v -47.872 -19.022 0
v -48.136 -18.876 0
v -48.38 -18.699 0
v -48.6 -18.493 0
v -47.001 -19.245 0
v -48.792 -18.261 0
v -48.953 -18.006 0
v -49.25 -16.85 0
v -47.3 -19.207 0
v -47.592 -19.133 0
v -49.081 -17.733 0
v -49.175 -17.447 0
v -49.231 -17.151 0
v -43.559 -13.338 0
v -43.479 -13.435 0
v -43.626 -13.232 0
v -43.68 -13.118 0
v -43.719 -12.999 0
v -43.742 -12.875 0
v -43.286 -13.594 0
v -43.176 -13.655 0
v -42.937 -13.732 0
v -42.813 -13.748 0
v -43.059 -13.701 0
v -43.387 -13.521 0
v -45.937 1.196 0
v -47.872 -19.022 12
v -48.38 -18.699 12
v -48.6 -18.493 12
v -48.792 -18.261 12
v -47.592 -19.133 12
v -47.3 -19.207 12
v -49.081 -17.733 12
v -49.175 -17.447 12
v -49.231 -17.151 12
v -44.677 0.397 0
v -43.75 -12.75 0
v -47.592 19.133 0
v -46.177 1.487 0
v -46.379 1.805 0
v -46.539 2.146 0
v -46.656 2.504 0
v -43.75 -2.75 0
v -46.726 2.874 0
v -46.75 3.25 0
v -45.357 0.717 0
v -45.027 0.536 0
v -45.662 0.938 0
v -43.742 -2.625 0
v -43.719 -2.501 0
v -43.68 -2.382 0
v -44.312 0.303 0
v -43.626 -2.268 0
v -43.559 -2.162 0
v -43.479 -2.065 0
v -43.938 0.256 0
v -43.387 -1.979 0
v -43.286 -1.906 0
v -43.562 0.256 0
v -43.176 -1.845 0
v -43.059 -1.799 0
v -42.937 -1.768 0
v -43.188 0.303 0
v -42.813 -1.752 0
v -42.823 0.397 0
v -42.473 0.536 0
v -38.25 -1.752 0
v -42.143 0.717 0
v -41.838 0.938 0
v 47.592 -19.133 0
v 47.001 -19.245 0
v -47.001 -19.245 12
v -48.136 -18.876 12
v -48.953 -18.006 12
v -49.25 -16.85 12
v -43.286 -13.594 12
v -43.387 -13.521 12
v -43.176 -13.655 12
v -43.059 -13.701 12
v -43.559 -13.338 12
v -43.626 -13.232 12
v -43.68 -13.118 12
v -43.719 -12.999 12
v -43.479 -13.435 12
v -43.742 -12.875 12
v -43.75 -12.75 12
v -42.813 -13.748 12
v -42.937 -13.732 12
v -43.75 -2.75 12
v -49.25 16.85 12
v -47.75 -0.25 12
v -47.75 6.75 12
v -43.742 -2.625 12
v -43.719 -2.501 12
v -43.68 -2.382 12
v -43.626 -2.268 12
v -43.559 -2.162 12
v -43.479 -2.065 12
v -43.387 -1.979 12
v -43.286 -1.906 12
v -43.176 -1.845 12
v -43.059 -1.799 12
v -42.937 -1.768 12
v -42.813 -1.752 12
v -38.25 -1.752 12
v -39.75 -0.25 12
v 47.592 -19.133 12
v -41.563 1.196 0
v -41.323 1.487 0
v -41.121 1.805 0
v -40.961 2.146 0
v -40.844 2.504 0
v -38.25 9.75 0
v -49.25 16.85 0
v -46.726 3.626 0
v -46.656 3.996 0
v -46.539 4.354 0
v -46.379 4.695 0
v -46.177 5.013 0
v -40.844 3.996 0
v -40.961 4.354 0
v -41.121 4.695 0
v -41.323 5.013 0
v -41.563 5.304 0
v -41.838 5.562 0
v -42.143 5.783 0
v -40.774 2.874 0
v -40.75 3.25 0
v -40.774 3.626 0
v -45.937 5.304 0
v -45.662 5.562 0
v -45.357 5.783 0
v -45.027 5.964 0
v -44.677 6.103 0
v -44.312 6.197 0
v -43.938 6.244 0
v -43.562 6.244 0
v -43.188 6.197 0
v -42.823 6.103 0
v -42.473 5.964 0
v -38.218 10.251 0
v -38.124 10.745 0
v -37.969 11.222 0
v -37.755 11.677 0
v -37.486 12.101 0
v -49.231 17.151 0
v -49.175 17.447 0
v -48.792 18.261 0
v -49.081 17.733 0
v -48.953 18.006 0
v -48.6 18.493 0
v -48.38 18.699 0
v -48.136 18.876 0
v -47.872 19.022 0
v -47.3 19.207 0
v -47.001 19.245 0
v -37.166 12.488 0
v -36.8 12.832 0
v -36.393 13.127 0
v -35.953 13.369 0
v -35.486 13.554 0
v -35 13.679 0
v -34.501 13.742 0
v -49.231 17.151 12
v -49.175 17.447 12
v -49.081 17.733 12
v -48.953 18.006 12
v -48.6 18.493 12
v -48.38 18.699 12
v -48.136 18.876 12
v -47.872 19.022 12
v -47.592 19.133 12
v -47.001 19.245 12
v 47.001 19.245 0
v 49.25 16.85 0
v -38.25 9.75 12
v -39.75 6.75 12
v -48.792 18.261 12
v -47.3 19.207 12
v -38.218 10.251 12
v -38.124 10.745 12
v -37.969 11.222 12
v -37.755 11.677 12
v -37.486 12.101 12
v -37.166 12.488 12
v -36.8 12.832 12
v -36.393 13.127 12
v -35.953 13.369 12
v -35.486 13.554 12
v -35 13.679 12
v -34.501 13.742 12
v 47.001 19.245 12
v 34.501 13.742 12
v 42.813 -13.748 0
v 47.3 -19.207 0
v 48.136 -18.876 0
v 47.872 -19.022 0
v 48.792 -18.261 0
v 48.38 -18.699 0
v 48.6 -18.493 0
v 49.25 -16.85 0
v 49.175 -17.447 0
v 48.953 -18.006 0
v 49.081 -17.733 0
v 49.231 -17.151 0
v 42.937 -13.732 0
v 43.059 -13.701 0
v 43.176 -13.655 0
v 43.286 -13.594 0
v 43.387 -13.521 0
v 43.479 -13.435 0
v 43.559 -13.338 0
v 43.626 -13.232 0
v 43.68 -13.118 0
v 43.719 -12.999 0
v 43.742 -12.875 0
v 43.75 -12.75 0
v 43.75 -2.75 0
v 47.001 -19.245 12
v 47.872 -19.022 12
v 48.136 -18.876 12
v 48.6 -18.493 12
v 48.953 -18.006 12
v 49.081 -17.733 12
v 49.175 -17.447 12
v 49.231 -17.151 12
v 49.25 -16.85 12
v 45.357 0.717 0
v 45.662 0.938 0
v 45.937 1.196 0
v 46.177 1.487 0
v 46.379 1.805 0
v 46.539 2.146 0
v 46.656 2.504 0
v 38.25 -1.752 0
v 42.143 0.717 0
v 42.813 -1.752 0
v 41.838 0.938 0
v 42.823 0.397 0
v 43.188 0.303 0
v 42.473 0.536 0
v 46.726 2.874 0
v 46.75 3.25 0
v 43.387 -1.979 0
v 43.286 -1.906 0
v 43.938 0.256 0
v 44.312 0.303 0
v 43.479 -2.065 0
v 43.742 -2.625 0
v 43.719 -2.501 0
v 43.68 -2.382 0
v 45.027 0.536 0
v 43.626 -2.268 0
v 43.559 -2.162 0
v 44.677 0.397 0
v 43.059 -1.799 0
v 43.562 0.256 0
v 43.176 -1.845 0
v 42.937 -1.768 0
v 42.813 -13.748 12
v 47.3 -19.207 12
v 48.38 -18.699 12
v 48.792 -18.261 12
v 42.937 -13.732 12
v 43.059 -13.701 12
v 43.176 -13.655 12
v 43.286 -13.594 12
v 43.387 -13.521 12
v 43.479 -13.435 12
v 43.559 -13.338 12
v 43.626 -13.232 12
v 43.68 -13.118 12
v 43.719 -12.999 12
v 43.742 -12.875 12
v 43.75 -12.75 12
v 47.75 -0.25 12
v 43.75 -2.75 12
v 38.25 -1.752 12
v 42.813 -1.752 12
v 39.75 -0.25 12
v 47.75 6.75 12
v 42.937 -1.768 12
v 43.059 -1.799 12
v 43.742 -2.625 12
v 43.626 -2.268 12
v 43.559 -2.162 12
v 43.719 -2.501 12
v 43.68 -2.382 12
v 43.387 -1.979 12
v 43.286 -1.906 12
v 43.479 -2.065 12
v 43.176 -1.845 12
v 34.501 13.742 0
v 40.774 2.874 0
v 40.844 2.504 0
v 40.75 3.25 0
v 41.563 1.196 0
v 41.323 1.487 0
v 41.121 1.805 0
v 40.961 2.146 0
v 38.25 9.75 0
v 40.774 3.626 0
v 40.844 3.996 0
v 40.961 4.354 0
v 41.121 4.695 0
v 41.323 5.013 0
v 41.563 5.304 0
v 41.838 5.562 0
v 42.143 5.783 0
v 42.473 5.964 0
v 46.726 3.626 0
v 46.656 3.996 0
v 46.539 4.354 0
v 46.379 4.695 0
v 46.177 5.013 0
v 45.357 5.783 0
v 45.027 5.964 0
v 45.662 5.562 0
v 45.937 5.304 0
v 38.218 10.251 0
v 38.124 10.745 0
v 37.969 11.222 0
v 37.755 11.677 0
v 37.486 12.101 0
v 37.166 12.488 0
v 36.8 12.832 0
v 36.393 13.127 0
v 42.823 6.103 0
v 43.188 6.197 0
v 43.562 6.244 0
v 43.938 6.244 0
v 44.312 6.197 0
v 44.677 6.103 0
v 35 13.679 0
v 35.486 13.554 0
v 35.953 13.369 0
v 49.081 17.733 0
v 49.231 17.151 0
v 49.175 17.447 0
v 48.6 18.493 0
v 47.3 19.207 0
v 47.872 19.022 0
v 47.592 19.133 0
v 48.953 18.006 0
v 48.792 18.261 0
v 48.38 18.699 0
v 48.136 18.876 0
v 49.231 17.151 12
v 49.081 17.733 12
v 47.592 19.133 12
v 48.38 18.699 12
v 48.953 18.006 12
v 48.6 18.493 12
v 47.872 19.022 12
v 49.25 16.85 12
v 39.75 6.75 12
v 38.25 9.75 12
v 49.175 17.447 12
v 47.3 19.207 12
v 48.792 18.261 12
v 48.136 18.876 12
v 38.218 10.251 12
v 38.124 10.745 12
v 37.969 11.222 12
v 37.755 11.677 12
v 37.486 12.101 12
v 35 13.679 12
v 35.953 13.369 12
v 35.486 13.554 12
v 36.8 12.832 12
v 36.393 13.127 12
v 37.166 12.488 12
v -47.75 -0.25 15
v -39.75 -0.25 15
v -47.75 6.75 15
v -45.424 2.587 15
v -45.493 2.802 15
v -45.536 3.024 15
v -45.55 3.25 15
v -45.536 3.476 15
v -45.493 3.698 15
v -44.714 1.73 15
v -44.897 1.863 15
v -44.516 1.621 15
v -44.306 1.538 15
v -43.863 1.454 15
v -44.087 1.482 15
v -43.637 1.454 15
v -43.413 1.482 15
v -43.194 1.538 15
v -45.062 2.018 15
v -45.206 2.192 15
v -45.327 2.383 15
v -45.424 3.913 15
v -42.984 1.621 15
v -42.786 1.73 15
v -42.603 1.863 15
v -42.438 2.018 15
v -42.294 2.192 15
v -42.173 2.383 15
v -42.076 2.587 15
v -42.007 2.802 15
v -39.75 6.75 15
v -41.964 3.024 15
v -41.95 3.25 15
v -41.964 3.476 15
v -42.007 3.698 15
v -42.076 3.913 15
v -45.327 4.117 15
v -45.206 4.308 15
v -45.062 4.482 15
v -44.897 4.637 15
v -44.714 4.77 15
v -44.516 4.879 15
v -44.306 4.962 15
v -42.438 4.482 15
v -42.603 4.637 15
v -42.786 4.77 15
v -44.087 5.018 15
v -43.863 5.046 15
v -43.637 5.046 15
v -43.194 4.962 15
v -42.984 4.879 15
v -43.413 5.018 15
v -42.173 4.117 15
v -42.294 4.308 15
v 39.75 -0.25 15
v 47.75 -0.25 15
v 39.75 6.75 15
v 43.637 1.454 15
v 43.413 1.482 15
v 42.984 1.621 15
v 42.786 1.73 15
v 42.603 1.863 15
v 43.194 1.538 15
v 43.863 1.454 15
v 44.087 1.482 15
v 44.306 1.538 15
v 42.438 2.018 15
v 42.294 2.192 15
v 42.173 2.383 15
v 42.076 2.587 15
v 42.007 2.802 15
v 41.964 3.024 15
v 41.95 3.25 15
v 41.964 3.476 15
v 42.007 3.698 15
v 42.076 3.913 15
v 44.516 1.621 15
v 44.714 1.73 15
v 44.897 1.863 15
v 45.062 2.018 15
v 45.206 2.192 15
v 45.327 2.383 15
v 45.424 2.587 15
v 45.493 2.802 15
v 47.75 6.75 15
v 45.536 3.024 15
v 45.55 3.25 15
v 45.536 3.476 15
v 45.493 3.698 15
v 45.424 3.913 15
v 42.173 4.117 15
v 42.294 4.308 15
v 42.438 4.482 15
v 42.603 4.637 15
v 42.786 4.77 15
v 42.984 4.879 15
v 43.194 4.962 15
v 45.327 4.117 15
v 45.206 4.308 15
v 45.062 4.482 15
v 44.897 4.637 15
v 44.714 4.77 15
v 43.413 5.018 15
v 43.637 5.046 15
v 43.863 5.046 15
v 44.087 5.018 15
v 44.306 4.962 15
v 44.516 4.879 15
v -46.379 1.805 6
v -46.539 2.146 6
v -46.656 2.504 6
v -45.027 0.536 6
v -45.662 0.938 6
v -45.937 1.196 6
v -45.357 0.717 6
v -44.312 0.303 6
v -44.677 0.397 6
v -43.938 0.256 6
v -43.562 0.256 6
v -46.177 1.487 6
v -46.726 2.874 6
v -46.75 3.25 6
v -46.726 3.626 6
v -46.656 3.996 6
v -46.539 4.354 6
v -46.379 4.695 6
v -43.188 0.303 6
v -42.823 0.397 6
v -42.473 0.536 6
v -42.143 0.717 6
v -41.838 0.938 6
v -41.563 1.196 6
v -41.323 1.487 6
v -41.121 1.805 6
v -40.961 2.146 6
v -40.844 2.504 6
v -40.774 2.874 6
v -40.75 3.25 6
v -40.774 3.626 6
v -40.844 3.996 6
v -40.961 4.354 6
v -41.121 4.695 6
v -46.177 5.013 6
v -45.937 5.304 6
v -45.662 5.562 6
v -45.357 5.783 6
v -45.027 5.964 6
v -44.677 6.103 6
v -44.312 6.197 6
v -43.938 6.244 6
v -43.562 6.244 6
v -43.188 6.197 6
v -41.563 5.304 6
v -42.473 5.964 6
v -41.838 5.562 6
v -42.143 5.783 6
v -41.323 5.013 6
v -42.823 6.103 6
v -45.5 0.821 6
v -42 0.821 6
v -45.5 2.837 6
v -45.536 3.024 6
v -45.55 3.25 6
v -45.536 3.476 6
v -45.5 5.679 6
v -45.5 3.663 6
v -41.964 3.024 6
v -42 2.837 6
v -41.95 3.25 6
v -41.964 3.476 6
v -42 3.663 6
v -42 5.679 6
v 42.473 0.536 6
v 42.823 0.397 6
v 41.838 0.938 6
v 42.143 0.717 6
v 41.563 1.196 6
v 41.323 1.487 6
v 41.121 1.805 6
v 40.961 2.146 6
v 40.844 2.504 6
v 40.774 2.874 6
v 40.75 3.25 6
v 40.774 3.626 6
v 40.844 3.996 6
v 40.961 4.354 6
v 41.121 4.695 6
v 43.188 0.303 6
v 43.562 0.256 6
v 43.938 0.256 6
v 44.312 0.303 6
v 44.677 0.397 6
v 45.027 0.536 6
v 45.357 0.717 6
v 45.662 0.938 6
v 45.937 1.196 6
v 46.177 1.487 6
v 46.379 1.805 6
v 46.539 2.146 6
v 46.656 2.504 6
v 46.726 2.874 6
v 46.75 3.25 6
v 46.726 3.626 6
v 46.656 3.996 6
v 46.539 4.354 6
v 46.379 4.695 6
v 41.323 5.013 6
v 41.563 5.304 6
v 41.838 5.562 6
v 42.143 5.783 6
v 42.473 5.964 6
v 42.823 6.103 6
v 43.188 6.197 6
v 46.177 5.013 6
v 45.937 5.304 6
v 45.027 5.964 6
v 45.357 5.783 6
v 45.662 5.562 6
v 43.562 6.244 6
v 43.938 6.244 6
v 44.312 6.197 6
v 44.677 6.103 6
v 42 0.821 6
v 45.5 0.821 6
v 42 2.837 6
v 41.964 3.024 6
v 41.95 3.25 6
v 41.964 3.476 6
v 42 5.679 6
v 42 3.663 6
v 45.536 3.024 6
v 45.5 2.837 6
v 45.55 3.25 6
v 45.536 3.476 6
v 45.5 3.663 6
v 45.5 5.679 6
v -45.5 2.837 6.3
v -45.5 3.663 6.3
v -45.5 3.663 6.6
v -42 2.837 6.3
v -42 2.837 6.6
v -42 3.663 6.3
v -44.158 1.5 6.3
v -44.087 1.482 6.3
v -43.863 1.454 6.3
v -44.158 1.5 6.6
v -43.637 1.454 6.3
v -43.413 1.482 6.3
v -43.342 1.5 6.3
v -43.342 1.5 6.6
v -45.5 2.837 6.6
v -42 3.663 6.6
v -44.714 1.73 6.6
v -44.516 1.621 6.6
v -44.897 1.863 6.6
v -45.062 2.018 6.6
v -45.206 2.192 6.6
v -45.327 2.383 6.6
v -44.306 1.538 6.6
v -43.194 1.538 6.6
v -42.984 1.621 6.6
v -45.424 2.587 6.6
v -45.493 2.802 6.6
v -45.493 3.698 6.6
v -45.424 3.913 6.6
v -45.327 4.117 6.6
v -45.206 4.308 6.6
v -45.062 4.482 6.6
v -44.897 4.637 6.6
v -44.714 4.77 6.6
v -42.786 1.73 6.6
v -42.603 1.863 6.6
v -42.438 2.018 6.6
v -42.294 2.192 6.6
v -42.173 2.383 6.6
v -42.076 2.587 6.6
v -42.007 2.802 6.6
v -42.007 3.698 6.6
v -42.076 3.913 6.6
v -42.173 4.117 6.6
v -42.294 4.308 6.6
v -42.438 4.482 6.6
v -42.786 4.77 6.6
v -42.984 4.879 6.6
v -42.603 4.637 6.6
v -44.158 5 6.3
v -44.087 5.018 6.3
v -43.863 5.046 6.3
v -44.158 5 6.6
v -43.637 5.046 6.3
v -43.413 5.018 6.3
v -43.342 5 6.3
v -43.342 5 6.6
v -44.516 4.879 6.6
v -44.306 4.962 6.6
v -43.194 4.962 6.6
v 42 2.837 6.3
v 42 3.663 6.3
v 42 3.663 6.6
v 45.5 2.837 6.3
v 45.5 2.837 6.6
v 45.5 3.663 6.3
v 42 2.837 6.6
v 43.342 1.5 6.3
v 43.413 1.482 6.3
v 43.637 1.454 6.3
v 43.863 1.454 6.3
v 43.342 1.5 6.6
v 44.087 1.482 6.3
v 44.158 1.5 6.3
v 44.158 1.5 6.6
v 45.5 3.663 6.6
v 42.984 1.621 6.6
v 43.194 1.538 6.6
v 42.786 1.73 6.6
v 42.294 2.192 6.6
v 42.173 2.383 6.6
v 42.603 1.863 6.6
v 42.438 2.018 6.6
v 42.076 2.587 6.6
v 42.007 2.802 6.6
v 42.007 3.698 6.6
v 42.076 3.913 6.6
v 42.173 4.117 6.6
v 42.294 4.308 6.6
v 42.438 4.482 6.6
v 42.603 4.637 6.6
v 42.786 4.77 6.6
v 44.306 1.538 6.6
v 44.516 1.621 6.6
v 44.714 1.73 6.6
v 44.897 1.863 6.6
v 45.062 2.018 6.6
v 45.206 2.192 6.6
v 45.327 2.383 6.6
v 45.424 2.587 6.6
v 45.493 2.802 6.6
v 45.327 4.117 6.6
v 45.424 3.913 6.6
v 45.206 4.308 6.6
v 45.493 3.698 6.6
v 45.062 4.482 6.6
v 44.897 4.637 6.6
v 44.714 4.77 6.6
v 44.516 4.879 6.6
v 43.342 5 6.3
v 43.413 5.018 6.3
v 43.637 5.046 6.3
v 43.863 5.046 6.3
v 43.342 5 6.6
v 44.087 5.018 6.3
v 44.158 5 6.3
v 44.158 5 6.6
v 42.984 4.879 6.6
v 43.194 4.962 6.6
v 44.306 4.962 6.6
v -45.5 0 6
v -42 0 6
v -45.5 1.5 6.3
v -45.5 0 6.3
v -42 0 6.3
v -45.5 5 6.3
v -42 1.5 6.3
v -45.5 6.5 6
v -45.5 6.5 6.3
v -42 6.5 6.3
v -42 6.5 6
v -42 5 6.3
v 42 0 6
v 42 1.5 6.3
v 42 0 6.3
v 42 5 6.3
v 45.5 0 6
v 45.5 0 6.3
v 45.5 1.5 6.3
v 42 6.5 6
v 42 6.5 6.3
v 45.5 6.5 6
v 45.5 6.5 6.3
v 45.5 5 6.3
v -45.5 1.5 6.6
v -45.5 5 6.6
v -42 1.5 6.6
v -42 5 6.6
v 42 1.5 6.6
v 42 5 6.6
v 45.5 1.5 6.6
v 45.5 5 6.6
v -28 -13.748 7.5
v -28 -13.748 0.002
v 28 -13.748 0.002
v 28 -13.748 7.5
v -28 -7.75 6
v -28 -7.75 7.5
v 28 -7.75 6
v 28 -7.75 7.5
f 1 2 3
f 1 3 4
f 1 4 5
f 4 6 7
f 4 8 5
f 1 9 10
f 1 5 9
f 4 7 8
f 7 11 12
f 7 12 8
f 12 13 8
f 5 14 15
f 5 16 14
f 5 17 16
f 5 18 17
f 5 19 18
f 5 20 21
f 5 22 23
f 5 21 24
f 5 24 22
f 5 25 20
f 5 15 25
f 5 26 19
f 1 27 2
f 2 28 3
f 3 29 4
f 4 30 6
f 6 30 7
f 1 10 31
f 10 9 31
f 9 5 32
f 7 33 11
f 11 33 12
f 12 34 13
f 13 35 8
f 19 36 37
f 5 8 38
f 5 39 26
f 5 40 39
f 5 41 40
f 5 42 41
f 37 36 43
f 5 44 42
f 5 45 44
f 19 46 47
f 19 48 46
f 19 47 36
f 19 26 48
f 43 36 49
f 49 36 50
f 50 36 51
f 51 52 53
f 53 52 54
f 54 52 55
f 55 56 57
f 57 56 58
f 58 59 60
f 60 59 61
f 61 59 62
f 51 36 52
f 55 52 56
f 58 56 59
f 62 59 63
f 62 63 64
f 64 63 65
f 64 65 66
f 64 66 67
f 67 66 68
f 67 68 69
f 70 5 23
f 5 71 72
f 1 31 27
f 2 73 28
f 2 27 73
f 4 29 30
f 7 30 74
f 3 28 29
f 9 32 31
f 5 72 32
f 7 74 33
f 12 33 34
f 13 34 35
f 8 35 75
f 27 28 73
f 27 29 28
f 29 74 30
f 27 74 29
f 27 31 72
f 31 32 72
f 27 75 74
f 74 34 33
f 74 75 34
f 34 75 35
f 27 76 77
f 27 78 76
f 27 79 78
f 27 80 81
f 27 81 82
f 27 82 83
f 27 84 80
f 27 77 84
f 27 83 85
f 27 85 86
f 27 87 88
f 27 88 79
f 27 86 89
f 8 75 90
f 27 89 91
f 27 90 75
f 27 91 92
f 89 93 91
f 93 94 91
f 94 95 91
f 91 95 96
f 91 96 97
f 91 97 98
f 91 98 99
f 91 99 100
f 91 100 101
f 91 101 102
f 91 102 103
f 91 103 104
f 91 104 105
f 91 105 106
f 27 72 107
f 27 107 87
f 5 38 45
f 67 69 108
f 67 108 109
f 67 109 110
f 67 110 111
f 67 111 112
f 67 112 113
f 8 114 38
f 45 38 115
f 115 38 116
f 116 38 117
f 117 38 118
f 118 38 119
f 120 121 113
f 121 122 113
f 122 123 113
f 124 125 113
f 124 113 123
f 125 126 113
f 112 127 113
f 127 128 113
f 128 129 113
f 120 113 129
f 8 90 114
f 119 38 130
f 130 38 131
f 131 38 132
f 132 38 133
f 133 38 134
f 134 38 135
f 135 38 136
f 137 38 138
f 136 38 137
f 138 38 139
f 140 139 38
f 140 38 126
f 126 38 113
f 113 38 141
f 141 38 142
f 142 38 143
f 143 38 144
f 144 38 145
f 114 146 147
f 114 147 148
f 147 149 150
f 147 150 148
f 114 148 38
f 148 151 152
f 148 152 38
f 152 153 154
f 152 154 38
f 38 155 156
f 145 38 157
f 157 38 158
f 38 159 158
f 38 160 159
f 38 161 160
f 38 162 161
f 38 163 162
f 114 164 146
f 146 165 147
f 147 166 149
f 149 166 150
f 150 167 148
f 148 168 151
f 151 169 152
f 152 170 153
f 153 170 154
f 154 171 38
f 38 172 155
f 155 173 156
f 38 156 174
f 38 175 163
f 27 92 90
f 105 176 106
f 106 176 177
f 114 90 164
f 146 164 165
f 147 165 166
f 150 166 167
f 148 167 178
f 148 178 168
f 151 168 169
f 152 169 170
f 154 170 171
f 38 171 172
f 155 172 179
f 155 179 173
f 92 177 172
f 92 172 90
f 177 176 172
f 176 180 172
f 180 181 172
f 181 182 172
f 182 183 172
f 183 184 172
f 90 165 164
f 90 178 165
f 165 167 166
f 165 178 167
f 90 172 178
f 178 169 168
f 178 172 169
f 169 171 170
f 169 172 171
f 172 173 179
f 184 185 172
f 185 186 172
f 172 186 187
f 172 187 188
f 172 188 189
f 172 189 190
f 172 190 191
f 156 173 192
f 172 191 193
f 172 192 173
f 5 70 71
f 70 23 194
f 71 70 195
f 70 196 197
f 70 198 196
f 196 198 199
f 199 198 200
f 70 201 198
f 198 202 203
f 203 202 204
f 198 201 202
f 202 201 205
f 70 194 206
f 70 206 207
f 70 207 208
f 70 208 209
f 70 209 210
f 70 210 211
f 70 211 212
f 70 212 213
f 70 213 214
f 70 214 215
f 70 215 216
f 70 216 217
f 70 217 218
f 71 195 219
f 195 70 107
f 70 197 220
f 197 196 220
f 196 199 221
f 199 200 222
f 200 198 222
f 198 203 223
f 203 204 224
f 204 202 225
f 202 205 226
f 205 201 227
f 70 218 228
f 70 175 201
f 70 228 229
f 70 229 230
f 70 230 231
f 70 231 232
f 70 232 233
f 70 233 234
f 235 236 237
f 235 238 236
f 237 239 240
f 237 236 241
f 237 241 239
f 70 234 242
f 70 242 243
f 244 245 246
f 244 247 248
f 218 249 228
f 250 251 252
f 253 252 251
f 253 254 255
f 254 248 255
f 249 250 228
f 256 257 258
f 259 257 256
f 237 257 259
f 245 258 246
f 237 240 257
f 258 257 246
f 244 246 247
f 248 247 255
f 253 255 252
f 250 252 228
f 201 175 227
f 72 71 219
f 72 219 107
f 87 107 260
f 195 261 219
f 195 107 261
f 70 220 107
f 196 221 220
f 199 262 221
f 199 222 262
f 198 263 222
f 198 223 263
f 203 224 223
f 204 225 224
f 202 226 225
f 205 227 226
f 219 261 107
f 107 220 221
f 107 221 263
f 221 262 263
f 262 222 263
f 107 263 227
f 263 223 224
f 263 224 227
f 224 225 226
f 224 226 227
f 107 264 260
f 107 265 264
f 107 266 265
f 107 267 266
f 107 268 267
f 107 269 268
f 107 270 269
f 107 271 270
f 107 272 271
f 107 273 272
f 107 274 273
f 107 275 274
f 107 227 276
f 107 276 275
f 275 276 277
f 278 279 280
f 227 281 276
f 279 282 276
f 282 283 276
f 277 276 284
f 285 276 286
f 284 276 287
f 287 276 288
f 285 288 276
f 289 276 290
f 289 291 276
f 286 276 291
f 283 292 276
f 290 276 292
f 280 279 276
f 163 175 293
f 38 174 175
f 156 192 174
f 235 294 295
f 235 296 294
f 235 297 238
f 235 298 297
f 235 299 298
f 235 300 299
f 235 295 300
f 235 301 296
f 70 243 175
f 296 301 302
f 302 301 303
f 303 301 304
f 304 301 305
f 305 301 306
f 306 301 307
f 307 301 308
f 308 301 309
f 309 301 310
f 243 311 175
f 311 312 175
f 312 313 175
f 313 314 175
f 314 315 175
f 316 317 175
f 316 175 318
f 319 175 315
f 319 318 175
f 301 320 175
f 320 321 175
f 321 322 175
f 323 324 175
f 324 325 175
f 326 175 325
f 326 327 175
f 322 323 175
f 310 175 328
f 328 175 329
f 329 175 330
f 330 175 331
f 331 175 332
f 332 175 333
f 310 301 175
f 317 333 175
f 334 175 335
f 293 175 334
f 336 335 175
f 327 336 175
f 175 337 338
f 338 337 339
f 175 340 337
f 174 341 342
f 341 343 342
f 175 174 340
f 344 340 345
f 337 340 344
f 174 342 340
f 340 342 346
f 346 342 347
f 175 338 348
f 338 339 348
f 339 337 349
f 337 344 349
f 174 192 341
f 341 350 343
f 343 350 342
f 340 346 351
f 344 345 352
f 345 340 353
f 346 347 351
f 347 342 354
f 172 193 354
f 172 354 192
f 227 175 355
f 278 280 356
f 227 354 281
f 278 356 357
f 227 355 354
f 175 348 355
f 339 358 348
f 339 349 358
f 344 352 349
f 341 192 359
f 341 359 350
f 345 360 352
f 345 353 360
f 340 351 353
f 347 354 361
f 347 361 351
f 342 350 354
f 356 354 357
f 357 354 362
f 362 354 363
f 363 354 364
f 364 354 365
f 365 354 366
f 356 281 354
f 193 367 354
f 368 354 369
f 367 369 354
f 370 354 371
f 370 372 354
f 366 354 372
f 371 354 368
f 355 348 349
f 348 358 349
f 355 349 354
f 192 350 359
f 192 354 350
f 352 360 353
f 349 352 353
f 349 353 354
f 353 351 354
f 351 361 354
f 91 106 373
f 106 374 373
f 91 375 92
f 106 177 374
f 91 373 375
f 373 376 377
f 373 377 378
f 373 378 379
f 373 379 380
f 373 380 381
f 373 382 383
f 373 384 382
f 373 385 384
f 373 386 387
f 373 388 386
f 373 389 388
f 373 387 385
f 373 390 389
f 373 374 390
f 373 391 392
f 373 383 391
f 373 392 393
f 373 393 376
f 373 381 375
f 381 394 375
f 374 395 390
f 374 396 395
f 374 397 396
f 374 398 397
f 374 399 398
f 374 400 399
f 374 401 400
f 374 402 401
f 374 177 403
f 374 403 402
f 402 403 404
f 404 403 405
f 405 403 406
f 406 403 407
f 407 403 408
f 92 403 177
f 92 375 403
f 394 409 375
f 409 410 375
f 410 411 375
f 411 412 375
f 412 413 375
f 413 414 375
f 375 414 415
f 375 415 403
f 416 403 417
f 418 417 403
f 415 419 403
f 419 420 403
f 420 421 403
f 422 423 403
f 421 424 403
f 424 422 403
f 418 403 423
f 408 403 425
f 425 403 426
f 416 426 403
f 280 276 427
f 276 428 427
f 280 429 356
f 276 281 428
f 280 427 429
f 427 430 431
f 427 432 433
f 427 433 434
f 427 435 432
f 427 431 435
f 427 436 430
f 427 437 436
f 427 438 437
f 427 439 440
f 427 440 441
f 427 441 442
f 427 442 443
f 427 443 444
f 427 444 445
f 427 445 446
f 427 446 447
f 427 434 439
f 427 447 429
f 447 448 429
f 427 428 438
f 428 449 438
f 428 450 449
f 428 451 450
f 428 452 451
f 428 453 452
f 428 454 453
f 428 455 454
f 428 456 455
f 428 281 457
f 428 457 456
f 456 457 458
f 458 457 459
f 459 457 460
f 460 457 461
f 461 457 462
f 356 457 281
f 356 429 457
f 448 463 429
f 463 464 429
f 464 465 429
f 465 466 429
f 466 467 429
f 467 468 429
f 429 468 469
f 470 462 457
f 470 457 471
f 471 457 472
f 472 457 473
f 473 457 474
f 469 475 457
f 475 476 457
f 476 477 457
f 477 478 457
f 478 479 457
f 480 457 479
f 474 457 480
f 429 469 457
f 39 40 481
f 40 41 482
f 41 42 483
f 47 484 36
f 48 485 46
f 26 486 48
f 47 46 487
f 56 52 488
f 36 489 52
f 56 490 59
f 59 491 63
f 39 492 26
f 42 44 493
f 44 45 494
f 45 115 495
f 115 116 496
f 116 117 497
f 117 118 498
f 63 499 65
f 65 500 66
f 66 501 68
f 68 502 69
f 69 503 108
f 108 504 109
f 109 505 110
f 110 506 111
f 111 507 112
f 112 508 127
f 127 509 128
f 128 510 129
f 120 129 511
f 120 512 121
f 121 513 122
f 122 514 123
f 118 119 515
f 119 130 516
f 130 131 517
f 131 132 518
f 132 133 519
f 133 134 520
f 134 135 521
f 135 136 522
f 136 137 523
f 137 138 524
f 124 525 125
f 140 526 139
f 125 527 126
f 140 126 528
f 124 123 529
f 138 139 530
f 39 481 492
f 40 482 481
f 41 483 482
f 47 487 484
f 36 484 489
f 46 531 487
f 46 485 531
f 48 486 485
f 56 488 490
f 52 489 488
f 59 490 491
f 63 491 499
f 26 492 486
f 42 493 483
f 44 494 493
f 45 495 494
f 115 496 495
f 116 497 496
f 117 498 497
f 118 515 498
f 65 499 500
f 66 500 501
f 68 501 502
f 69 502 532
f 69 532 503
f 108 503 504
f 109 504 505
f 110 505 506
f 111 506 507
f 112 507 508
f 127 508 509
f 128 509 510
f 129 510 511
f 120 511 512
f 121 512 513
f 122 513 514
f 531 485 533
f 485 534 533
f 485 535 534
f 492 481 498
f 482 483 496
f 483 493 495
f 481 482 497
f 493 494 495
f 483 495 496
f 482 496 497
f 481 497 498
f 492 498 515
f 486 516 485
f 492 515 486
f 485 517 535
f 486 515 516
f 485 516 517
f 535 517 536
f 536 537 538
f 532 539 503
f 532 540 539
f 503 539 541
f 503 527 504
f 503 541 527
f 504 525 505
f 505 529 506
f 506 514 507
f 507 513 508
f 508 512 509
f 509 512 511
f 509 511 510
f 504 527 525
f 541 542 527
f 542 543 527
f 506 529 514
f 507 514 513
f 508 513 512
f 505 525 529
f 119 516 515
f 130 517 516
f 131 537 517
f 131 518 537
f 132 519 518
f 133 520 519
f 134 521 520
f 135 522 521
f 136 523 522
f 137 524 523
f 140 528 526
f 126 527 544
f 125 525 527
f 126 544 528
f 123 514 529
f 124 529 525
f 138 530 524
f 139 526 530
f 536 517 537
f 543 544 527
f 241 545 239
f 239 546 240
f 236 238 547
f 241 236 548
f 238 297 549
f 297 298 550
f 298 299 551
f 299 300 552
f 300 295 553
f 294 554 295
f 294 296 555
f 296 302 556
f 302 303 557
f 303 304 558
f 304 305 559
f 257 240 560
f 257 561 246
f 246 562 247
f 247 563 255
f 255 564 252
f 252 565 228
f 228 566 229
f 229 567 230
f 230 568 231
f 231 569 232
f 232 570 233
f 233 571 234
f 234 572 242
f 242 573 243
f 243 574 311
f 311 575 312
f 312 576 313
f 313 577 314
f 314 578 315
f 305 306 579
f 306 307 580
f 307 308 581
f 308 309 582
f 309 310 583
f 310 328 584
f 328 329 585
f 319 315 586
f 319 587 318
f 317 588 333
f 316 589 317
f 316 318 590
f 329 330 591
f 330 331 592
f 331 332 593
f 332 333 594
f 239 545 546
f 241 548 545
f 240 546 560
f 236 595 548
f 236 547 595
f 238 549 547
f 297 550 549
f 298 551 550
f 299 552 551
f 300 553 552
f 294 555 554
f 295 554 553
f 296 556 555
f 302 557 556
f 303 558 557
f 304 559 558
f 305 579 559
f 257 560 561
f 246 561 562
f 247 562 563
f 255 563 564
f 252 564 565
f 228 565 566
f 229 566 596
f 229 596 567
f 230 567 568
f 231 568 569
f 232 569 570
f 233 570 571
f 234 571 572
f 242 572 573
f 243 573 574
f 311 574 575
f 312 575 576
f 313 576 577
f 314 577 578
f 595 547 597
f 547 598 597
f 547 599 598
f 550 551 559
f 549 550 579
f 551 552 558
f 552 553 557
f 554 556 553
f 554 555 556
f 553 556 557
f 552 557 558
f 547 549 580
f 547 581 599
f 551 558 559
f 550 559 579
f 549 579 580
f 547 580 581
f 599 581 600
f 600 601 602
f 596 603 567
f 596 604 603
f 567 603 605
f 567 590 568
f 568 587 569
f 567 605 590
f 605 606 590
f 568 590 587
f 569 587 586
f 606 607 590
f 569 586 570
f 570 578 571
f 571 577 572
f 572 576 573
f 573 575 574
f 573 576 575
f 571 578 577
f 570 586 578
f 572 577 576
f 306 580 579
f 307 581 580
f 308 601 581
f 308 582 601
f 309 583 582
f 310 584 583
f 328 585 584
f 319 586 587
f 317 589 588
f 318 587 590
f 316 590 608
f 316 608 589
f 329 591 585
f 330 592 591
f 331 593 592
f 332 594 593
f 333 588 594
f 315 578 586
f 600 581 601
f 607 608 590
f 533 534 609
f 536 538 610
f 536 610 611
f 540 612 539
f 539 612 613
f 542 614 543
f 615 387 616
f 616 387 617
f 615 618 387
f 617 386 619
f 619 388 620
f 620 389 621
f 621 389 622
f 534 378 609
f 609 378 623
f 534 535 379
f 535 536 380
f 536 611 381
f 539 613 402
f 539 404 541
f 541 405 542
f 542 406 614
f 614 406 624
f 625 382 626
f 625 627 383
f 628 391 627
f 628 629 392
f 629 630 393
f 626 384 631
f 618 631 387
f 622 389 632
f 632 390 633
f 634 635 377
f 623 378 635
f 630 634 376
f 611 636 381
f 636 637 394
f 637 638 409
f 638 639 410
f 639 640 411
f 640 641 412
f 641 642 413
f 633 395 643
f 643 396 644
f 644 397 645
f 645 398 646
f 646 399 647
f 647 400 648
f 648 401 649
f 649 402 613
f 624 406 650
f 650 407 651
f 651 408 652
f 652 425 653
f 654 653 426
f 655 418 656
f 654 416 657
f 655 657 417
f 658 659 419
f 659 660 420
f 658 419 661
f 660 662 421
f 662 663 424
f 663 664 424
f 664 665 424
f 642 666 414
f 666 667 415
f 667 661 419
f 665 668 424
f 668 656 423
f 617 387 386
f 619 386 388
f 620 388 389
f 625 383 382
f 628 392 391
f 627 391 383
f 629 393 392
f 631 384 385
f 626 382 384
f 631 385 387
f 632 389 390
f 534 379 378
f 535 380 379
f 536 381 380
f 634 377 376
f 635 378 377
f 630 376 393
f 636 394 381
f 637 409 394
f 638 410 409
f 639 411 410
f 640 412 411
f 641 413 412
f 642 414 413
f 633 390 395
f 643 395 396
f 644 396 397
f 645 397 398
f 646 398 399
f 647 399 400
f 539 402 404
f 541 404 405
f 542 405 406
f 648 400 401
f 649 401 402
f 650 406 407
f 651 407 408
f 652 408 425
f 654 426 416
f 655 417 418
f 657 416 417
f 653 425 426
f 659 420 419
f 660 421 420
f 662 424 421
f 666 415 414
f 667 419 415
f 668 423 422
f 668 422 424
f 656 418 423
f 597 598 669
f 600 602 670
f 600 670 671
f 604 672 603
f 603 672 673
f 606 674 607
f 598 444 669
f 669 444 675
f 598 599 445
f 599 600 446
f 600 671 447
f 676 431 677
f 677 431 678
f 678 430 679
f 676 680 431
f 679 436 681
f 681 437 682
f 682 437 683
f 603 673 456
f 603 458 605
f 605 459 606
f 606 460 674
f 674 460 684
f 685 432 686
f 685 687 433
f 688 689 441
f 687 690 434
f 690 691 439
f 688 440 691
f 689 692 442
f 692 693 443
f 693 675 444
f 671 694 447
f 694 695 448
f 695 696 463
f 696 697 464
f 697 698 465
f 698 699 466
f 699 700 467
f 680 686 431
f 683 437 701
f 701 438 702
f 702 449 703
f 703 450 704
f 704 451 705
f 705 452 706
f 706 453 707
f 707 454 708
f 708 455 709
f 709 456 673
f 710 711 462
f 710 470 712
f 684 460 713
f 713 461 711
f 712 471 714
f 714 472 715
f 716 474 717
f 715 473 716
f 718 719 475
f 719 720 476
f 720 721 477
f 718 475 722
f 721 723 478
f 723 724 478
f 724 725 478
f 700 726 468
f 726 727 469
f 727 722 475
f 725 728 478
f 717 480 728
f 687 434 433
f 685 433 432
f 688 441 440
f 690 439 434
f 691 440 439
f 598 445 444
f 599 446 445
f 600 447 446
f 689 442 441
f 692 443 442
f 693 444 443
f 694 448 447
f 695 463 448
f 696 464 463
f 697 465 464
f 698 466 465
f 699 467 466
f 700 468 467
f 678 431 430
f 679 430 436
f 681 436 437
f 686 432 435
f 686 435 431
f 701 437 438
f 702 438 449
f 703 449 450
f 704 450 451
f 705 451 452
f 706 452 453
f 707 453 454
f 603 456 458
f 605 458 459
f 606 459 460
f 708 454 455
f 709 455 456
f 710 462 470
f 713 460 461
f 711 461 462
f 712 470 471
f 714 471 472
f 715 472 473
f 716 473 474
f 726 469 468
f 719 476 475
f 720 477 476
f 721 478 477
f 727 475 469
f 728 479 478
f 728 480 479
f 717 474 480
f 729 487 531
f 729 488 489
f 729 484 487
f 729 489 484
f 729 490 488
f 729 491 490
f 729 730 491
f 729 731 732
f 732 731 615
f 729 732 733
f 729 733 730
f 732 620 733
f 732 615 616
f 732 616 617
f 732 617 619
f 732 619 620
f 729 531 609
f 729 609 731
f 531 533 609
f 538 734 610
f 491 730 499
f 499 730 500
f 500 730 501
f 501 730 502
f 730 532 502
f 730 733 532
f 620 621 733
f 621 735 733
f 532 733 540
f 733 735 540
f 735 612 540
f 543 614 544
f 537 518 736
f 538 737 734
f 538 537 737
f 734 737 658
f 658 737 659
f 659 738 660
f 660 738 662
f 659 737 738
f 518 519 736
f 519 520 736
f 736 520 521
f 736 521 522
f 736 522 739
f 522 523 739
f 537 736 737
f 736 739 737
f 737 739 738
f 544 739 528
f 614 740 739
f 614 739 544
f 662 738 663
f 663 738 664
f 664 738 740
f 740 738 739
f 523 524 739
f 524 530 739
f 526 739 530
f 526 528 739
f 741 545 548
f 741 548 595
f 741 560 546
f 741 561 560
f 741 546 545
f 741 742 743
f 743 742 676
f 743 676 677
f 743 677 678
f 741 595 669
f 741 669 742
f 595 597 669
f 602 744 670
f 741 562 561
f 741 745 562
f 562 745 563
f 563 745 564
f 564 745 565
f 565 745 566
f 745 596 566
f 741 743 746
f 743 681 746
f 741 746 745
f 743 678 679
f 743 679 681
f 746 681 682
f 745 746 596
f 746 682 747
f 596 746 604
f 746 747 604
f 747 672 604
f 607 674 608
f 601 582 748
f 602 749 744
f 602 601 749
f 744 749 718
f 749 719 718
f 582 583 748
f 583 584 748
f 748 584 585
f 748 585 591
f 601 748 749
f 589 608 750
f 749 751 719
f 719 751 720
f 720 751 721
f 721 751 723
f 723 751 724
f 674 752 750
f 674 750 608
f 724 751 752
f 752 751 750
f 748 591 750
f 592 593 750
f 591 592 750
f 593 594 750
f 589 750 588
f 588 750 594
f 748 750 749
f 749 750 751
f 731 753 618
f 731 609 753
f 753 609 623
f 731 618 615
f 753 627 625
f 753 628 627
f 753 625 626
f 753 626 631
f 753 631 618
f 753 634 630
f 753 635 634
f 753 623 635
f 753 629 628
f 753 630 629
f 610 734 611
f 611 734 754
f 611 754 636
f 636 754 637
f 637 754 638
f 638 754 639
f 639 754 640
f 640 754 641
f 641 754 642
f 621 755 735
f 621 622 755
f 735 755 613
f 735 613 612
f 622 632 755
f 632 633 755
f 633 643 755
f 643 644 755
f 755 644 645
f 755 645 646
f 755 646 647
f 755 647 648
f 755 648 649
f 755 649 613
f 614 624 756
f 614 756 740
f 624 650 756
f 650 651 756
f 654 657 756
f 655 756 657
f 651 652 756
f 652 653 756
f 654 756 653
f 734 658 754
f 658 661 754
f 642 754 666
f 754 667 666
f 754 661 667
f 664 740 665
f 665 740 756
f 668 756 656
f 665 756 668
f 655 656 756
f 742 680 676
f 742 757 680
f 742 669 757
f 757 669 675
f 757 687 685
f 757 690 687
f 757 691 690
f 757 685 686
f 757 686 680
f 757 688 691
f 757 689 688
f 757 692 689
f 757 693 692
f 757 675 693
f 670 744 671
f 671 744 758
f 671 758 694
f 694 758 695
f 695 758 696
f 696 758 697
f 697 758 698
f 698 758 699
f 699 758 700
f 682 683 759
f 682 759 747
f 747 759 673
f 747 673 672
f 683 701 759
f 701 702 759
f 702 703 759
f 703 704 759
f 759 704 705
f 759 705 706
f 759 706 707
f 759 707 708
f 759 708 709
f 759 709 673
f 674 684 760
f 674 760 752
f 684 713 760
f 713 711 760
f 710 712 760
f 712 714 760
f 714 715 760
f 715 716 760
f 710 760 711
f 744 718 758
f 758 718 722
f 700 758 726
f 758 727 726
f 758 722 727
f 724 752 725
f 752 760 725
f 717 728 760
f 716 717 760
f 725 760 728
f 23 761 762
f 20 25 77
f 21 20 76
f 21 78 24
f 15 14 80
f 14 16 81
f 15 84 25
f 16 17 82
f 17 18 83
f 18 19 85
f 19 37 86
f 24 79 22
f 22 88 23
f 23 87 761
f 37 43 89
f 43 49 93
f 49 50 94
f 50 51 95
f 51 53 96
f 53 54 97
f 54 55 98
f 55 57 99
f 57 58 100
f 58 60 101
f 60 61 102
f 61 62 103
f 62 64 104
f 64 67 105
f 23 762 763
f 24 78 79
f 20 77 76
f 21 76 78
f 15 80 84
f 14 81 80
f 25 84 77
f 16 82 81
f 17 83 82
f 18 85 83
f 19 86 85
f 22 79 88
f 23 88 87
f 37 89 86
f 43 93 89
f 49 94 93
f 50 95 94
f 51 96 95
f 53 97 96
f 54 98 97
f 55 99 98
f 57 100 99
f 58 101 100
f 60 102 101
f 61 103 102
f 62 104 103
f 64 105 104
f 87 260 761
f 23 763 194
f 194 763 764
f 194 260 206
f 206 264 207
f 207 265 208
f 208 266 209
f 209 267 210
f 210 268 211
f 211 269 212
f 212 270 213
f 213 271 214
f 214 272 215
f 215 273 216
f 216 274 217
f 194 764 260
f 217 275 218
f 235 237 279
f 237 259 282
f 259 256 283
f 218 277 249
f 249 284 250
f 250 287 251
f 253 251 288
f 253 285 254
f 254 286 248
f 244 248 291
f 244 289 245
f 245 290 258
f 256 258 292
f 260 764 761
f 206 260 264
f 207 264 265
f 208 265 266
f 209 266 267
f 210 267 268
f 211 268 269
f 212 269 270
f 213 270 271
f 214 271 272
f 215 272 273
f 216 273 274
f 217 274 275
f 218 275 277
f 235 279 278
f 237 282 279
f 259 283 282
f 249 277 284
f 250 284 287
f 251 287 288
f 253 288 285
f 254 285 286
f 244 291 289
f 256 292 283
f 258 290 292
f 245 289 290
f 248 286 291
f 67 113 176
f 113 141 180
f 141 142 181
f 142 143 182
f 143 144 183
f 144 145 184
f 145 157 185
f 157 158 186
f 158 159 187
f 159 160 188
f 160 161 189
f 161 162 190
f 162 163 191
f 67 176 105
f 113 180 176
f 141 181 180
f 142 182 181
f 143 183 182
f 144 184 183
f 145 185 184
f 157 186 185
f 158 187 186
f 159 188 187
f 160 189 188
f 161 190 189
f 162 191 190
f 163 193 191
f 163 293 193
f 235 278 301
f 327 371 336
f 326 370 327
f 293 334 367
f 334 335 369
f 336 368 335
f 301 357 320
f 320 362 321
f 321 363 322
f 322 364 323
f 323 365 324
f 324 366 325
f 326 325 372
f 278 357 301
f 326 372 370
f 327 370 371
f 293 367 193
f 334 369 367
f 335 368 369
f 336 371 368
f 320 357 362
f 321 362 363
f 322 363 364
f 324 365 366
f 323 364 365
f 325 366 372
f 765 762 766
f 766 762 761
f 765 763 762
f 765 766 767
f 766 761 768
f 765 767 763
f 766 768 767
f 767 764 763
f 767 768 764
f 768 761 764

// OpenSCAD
$fn = 50;

union() {
	difference() {
		union() {
			hull() {
				translate(v = [-46.85, 16.85, 0]) {
					cylinder(h = 12.0, r = 2.4);
				}
				translate(v = [46.85, 16.85, 0]) {
					cylinder(h = 12.0, r = 2.4);
				}
				translate(v = [-46.85, -16.85, 0]) {
					cylinder(h = 12.0, r = 2.4);
				}
				translate(v = [46.85, -16.85, 0]) {
					cylinder(h = 12.0, r = 2.4);
				}
			}
			translate(v = [-47.75, -0.25, 11.9]) {
				cube(size = [8.0, 7.0, 3.1]);
			}
			translate(v = [39.75, -0.25, 11.9]) {
				cube(size = [8.0, 7.0, 3.1]);
			}
		}
		union() {
			translate(v = [-43.75, 3.25, 6.0]) {
				rotate(a = [0, 180, 0]) {
					difference() {
						union() {
							translate(v = [0, 0, -13.5]) {
								rotate(a = [0, 0, 0]) {
									difference() {
										union() {
											translate(v = [-1.75, -3.25, -250.3]) {
												cube(size = [3.5, 6.5, 0.3]);
											}
											translate(v = [-1.75, -1.75, -250.60000000000002]) {
												cube(size = [3.5, 3.5, 0.3]);
											}
											translate(v = [-1.75, -3.25, 0]) {
												cube(size = [3.5, 6.5, 0.3]);
											}
											translate(v = [-1.75, -1.75, 0.3]) {
												cube(size = [3.5, 3.5, 0.3]);
											}
											translate(v = [0, 0, -250]) {
												linear_extrude(height = 250) {
													polygon(points = [[3.4619999999999997, 0.0], [1.7310000000000003, 2.9981799479017264], [-1.7309999999999992, 2.9981799479017264], [-3.4619999999999997, 4.2397272186481365e-16], [-1.7310000000000014, -2.998179947901726], [1.7309999999999977, -2.9981799479017277]]);
												}
											}
											translate(v = [-1.75, -3.25, -250.3]) {
												cube(size = [3.5, 6.5, 0.3]);
											}
											translate(v = [-1.75, -1.75, -250.60000000000002]) {
												cube(size = [3.5, 3.5, 0.3]);
											}
											translate(v = [-1.75, -3.25, 0]) {
												cube(size = [3.5, 6.5, 0.3]);
											}
											translate(v = [-1.75, -1.75, 0.3]) {
												cube(size = [3.5, 3.5, 0.3]);
											}
											translate(v = [-1.75, -3.25, -250.3]) {
												cube(size = [3.5, 6.5, 0.3]);
											}
											translate(v = [-1.75, -1.75, -250.60000000000002]) {
												cube(size = [3.5, 3.5, 0.3]);
											}
											translate(v = [-1.75, -3.25, 0]) {
												cube(size = [3.5, 6.5, 0.3]);
											}
											translate(v = [-1.75, -1.75, 0.3]) {
												cube(size = [3.5, 3.5, 0.3]);
											}
										}
										union();
									}
								}
							}
							translate(v = [0, 0, -13.0]) {
								rotate(a = [0, 0, 0]) {
									difference() {
										union() {
											translate(v = [-1.75, -3.25, -250.3]) {
												cube(size = [3.5, 6.5, 0.3]);
											}
											translate(v = [-1.75, -1.75, -250.60000000000002]) {
												cube(size = [3.5, 3.5, 0.3]);
											}
											translate(v = [-1.75, -3.25, 0]) {
												cube(size = [3.5, 6.5, 0.3]);
											}
											translate(v = [-1.75, -1.75, 0.3]) {
												cube(size = [3.5, 3.5, 0.3]);
											}
											translate(v = [0, 0, -250]) {
												linear_extrude(height = 250) {
													polygon(points = [[3.4619999999999997, 0.0], [1.7310000000000003, 2.9981799479017264], [-1.7309999999999992, 2.9981799479017264], [-3.4619999999999997, 4.2397272186481365e-16], [-1.7310000000000014, -2.998179947901726], [1.7309999999999977, -2.9981799479017277]]);
												}
											}
											translate(v = [-1.75, -3.25, -250.3]) {
												cube(size = [3.5, 6.5, 0.3]);
											}
											translate(v = [-1.75, -1.75, -250.60000000000002]) {
												cube(size = [3.5, 3.5, 0.3]);
											}
											translate(v = [-1.75, -3.25, 0]) {
												cube(size = [3.5, 6.5, 0.3]);
											}
											translate(v = [-1.75, -1.75, 0.3]) {
												cube(size = [3.5, 3.5, 0.3]);
											}
											translate(v = [-1.75, -3.25, -250.3]) {
												cube(size = [3.5, 6.5, 0.3]);
											}
											translate(v = [-1.75, -1.75, -250.60000000000002]) {
												cube(size = [3.5, 3.5, 0.3]);
											}
											translate(v = [-1.75, -3.25, 0]) {
												cube(size = [3.5, 6.5, 0.3]);
											}
											translate(v = [-1.75, -1.75, 0.3]) {
												cube(size = [3.5, 3.5, 0.3]);
											}
										}
										union();
									}
								}
							}
							translate(v = [0, 0, -13.5]) {
								rotate(a = [0, 0, 0]) {
									difference() {
										union() {
											translate(v = [-1.75, -3.25, -250.3]) {
												cube(size = [3.5, 6.5, 0.3]);
											}
											translate(v = [-1.75, -1.75, -250.60000000000002]) {
												cube(size = [3.5, 3.5, 0.3]);
											}
											translate(v = [-1.75, -3.25, 0]) {
												cube(size = [3.5, 6.5, 0.3]);
											}
											translate(v = [-1.75, -1.75, 0.3]) {
												cube(size = [3.5, 3.5, 0.3]);
											}
											translate(v = [0, 0, -250]) {
												linear_extrude(height = 250) {
													polygon(points = [[3.4619999999999997, 0.0], [1.7310000000000003, 2.9981799479017264], [-1.7309999999999992, 2.9981799479017264], [-3.4619999999999997, 4.2397272186481365e-16], [-1.7310000000000014, -2.998179947901726], [1.7309999999999977, -2.9981799479017277]]);
												}
											}
											translate(v = [-1.75, -3.25, -250.3]) {
												cube(size = [3.5, 6.5, 0.3]);
											}
											translate(v = [-1.75, -1.75, -250.60000000000002]) {
												cube(size = [3.5, 3.5, 0.3]);
											}
											translate(v = [-1.75, -3.25, 0]) {
												cube(size = [3.5, 6.5, 0.3]);
											}
											translate(v = [-1.75, -1.75, 0.3]) {
												cube(size = [3.5, 3.5, 0.3]);
											}
											translate(v = [-1.75, -3.25, -250.3]) {
												cube(size = [3.5, 6.5, 0.3]);
											}
											translate(v = [-1.75, -1.75, -250.60000000000002]) {
												cube(size = [3.5, 3.5, 0.3]);
											}
											translate(v = [-1.75, -3.25, 0]) {
												cube(size = [3.5, 6.5, 0.3]);
											}
											translate(v = [-1.75, -1.75, 0.3]) {
												cube(size = [3.5, 3.5, 0.3]);
											}
										}
										union();
									}
								}
							}
							translate(v = [0, 0, -16.0]) {
								cylinder(h = 16.0, r = 1.5);
							}
							cylinder(h = 253.2, r = 3.0);
							translate(v = [0, 0, -16.0]) {
								cylinder(h = 16.0, r = 1.8);
							}
							translate(v = [-1.75, -3.25, -0.3]) {
								cube(size = [3.5, 6.5, 0.3]);
							}
							translate(v = [-1.75, -1.75, -0.6]) {
								cube(size = [3.5, 3.5, 0.3]);
							}
							translate(v = [0, 0, -16.0]) {
								cylinder(h = 16.0, r = 1.5);
							}
						}
						union();
					}
				}
			}
			translate(v = [43.75, 3.25, 6.0]) {
				rotate(a = [0, 180, 0]) {
					difference() {
						union() {
							translate(v = [0, 0, -13.5]) {
								rotate(a = [0, 0, 0]) {
									difference() {
										union() {
											translate(v = [-1.75, -3.25, -250.3]) {
												cube(size = [3.5, 6.5, 0.3]);
											}
											translate(v = [-1.75, -1.75, -250.60000000000002]) {
												cube(size = [3.5, 3.5, 0.3]);
											}
											translate(v = [-1.75, -3.25, 0]) {
												cube(size = [3.5, 6.5, 0.3]);
											}
											translate(v = [-1.75, -1.75, 0.3]) {
												cube(size = [3.5, 3.5, 0.3]);
											}
											translate(v = [0, 0, -250]) {
												linear_extrude(height = 250) {
													polygon(points = [[3.4619999999999997, 0.0], [1.7310000000000003, 2.9981799479017264], [-1.7309999999999992, 2.9981799479017264], [-3.4619999999999997, 4.2397272186481365e-16], [-1.7310000000000014, -2.998179947901726], [1.7309999999999977, -2.9981799479017277]]);
												}
											}
											translate(v = [-1.75, -3.25, -250.3]) {
												cube(size = [3.5, 6.5, 0.3]);
											}
											translate(v = [-1.75, -1.75, -250.60000000000002]) {
												cube(size = [3.5, 3.5, 0.3]);
											}
											translate(v = [-1.75, -3.25, 0]) {
												cube(size = [3.5, 6.5, 0.3]);
											}
											translate(v = [-1.75, -1.75, 0.3]) {
												cube(size = [3.5, 3.5, 0.3]);
											}
											translate(v = [-1.75, -3.25, -250.3]) {
												cube(size = [3.5, 6.5, 0.3]);
											}
											translate(v = [-1.75, -1.75, -250.60000000000002]) {
												cube(size = [3.5, 3.5, 0.3]);
											}
											translate(v = [-1.75, -3.25, 0]) {
												cube(size = [3.5, 6.5, 0.3]);
											}
											translate(v = [-1.75, -1.75, 0.3]) {
												cube(size = [3.5, 3.5, 0.3]);
											}
										}
										union();
									}
								}
							}
							translate(v = [0, 0, -13.0]) {
								rotate(a = [0, 0, 0]) {
									difference() {
										union() {
											translate(v = [-1.75, -3.25, -250.3]) {
												cube(size = [3.5, 6.5, 0.3]);
											}
											translate(v = [-1.75, -1.75, -250.60000000000002]) {
												cube(size = [3.5, 3.5, 0.3]);
											}
											translate(v = [-1.75, -3.25, 0]) {
												cube(size = [3.5, 6.5, 0.3]);
											}
											translate(v = [-1.75, -1.75, 0.3]) {
												cube(size = [3.5, 3.5, 0.3]);
											}
											translate(v = [0, 0, -250]) {
												linear_extrude(height = 250) {
													polygon(points = [[3.4619999999999997, 0.0], [1.7310000000000003, 2.9981799479017264], [-1.7309999999999992, 2.9981799479017264], [-3.4619999999999997, 4.2397272186481365e-16], [-1.7310000000000014, -2.998179947901726], [1.7309999999999977, -2.9981799479017277]]);
												}
											}
											translate(v = [-1.75, -3.25, -250.3]) {
												cube(size = [3.5, 6.5, 0.3]);
											}
											translate(v = [-1.75, -1.75, -250.60000000000002]) {
												cube(size = [3.5, 3.5, 0.3]);
											}
											translate(v = [-1.75, -3.25, 0]) {
												cube(size = [3.5, 6.5, 0.3]);
											}
											translate(v = [-1.75, -1.75, 0.3]) {
												cube(size = [3.5, 3.5, 0.3]);
											}
											translate(v = [-1.75, -3.25, -250.3]) {
												cube(size = [3.5, 6.5, 0.3]);
											}
											translate(v = [-1.75, -1.75, -250.60000000000002]) {
												cube(size = [3.5, 3.5, 0.3]);
											}
											translate(v = [-1.75, -3.25, 0]) {
												cube(size = [3.5, 6.5, 0.3]);
											}
											translate(v = [-1.75, -1.75, 0.3]) {
												cube(size = [3.5, 3.5, 0.3]);
											}
										}
										union();
									}
								}
							}
							translate(v = [0, 0, -13.5]) {
								rotate(a = [0, 0, 0]) {
									difference() {
										union() {
											translate(v = [-1.75, -3.25, -250.3]) {
												cube(size = [3.5, 6.5, 0.3]);
											}
											translate(v = [-1.75, -1.75, -250.60000000000002]) {
												cube(size = [3.5, 3.5, 0.3]);
											}
											translate(v = [-1.75, -3.25, 0]) {
												cube(size = [3.5, 6.5, 0.3]);
											}
											translate(v = [-1.75, -1.75, 0.3]) {
												cube(size = [3.5, 3.5, 0.3]);
											}
											translate(v = [0, 0, -250]) {
												linear_extrude(height = 250) {
													polygon(points = [[3.4619999999999997, 0.0], [1.7310000000000003, 2.9981799479017264], [-1.7309999999999992, 2.9981799479017264], [-3.4619999999999997, 4.2397272186481365e-16], [-1.7310000000000014, -2.998179947901726], [1.7309999999999977, -2.9981799479017277]]);
												}
											}
											translate(v = [-1.75, -3.25, -250.3]) {
												cube(size = [3.5, 6.5, 0.3]);
											}
											translate(v = [-1.75, -1.75, -250.60000000000002]) {
												cube(size = [3.5, 3.5, 0.3]);
											}
											translate(v = [-1.75, -3.25, 0]) {
												cube(size = [3.5, 6.5, 0.3]);
											}
											translate(v = [-1.75, -1.75, 0.3]) {
												cube(size = [3.5, 3.5, 0.3]);
											}
											translate(v = [-1.75, -3.25, -250.3]) {
												cube(size = [3.5, 6.5, 0.3]);
											}
											translate(v = [-1.75, -1.75, -250.60000000000002]) {
												cube(size = [3.5, 3.5, 0.3]);
											}
											translate(v = [-1.75, -3.25, 0]) {
												cube(size = [3.5, 6.5, 0.3]);
											}
											translate(v = [-1.75, -1.75, 0.3]) {
												cube(size = [3.5, 3.5, 0.3]);
											}
										}
										union();
									}
								}
							}
							translate(v = [0, 0, -16.0]) {
								cylinder(h = 16.0, r = 1.5);
							}
							cylinder(h = 253.2, r = 3.0);
							translate(v = [0, 0, -16.0]) {
								cylinder(h = 16.0, r = 1.8);
							}
							translate(v = [-1.75, -3.25, -0.3]) {
								cube(size = [3.5, 6.5, 0.3]);
							}
							translate(v = [-1.75, -1.75, -0.6]) {
								cube(size = [3.5, 3.5, 0.3]);
							}
							translate(v = [0, 0, -16.0]) {
								cylinder(h = 16.0, r = 1.5);
							}
						}
						union();
					}
				}
			}
			translate(v = [0.0, -7.75, -0.1]) {
				hull() {
					translate(v = [-42.75, 5.0, 0]) {
						cylinder(h = 15.2, r = 1.0);
					}
					translate(v = [42.75, 5.0, 0]) {
						cylinder(h = 15.2, r = 1.0);
					}
					translate(v = [-42.75, -5.0, 0]) {
						cylinder(h = 15.2, r = 1.0);
					}
					translate(v = [42.75, -5.0, 0]) {
						cylinder(h = 15.2, r = 1.0);
					}
				}
			}
			translate(v = [0.0, 0.0, -0.1]) {
				hull() {
					translate(v = [-34.25, 9.75, 0]) {
						cylinder(h = 15.2, r = 4.0);
					}
					translate(v = [34.25, 9.75, 0]) {
						cylinder(h = 15.2, r = 4.0);
					}
					translate(v = [-34.25, -9.75, 0]) {
						cylinder(h = 15.2, r = 4.0);
					}
					translate(v = [34.25, -9.75, 0]) {
						cylinder(h = 15.2, r = 4.0);
					}
				}
			}
		}
	}
	union() {
		#translate(v = [-28.0, -13.75, 0]) {
			rotate(a = [90, 0, 90]) {
				linear_extrude(height = 56.0) {
					polygon(points = [[-1.8, 0], [0, 0], [6.0, 6.0], [6.0, 7.5], [-1.8, 7.5]]);
				}
			}
		}
	}
}
